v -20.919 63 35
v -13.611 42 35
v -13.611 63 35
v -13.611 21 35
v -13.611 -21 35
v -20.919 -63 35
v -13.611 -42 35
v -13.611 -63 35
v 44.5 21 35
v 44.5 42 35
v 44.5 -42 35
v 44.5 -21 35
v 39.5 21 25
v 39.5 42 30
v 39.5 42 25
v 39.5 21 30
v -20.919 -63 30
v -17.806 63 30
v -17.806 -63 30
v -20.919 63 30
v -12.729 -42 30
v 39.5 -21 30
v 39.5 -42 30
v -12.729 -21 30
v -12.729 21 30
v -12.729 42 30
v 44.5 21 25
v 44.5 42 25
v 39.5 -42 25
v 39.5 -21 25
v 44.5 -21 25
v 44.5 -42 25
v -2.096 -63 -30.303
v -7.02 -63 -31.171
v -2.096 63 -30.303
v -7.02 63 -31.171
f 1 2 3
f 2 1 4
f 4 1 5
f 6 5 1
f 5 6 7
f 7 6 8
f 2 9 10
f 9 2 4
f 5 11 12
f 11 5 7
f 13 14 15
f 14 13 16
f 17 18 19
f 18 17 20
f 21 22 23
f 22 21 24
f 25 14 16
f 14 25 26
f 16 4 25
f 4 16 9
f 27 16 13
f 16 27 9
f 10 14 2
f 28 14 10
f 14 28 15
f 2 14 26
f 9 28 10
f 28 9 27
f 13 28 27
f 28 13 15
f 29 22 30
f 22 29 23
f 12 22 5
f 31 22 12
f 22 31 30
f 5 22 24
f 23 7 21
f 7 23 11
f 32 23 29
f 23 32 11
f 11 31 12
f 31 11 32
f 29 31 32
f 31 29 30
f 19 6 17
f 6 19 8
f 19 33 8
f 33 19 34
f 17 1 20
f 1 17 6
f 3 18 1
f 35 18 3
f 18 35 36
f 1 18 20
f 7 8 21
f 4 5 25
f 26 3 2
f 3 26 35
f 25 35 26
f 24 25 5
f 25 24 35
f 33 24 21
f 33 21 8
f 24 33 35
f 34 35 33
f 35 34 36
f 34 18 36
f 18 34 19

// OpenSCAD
//Olympus Scope Filter Slider
// Created by Juan Angueyra (angueyra@uw.edu)
// March 2016
// Variables (is this mm?)
clock_w=42;
clock_h=60;
clock_l=126;
wall = 5;
wall_rot = 10;
opp = sin(wall_rot)*clock_h;
adj = cos(wall_rot)*clock_h;

 // main call
3Dprintflag=1;
back_tr = 3Dprintflag ? [0,0,0] : [0,0,0];
back_rot = 3Dprintflag ? [0,0,0] : [0,0,0];

translate(back_tr){rotate(back_rot){clockback();}}

// modules

module clockback() {
	difference() {
		union() {
			// clock();
			back();
			toparms();
		}
		
		translate([0,0,clock_h/2+wall*1.5]) {cube(size=[150,150,wall],center=true);}
	}
}

module back() {
	// color([1,0,0],0.5){rotate([0,90,0]) {cube(size=[clock_h,clock_l,wall],center=true);}}
	translate([-opp,0,+wall/2]) {rotate([0,90-wall_rot,0]) {cube(size=[clock_h+wall*1.5,clock_l,wall],center=true);}}
}

module toparms() {
		toparmL();
		toparmR();
		translate([-opp-wall*1.4,0,clock_h/2+wall/2]) {rotate([0,90,0]) {cube(size=[wall,clock_l,wall*1.4],center=true);}}
}

module toparmL() {
	translate([clock_w/2-wall-opp/2,clock_l*.25,clock_h/2+wall/2]) {rotate([0,0,0]) {cube(size=[clock_w+opp+wall,clock_w/2,wall],center=true);}}
	translate([clock_w+0,clock_l*.25,clock_h/2]) {cube(size=[wall,clock_w/2,wall*2],center=true);}
}

module toparmR() {
	mirror([0,1,0]) {toparmL();}
}

module clock(){
	translate([clock_w/2-opp/4,0,0]) {color([1,0,0],0.5){cube(size=[clock_w,clock_l,clock_h],center=true);}}
}


module trapezoid(width_base, width_top,height,thickness) {
	translate([height/2,-width_base/2,thickness/2]) {rotate([0,0,90]) {
  		linear_extrude(height = thickness) polygon(points=[[0,0],[width_base,0],[width_base-(width_base-width_top)/2,height],[(width_base-width_top)/2,height]], paths=[[0,1,2,3]]);  
	}}
}
